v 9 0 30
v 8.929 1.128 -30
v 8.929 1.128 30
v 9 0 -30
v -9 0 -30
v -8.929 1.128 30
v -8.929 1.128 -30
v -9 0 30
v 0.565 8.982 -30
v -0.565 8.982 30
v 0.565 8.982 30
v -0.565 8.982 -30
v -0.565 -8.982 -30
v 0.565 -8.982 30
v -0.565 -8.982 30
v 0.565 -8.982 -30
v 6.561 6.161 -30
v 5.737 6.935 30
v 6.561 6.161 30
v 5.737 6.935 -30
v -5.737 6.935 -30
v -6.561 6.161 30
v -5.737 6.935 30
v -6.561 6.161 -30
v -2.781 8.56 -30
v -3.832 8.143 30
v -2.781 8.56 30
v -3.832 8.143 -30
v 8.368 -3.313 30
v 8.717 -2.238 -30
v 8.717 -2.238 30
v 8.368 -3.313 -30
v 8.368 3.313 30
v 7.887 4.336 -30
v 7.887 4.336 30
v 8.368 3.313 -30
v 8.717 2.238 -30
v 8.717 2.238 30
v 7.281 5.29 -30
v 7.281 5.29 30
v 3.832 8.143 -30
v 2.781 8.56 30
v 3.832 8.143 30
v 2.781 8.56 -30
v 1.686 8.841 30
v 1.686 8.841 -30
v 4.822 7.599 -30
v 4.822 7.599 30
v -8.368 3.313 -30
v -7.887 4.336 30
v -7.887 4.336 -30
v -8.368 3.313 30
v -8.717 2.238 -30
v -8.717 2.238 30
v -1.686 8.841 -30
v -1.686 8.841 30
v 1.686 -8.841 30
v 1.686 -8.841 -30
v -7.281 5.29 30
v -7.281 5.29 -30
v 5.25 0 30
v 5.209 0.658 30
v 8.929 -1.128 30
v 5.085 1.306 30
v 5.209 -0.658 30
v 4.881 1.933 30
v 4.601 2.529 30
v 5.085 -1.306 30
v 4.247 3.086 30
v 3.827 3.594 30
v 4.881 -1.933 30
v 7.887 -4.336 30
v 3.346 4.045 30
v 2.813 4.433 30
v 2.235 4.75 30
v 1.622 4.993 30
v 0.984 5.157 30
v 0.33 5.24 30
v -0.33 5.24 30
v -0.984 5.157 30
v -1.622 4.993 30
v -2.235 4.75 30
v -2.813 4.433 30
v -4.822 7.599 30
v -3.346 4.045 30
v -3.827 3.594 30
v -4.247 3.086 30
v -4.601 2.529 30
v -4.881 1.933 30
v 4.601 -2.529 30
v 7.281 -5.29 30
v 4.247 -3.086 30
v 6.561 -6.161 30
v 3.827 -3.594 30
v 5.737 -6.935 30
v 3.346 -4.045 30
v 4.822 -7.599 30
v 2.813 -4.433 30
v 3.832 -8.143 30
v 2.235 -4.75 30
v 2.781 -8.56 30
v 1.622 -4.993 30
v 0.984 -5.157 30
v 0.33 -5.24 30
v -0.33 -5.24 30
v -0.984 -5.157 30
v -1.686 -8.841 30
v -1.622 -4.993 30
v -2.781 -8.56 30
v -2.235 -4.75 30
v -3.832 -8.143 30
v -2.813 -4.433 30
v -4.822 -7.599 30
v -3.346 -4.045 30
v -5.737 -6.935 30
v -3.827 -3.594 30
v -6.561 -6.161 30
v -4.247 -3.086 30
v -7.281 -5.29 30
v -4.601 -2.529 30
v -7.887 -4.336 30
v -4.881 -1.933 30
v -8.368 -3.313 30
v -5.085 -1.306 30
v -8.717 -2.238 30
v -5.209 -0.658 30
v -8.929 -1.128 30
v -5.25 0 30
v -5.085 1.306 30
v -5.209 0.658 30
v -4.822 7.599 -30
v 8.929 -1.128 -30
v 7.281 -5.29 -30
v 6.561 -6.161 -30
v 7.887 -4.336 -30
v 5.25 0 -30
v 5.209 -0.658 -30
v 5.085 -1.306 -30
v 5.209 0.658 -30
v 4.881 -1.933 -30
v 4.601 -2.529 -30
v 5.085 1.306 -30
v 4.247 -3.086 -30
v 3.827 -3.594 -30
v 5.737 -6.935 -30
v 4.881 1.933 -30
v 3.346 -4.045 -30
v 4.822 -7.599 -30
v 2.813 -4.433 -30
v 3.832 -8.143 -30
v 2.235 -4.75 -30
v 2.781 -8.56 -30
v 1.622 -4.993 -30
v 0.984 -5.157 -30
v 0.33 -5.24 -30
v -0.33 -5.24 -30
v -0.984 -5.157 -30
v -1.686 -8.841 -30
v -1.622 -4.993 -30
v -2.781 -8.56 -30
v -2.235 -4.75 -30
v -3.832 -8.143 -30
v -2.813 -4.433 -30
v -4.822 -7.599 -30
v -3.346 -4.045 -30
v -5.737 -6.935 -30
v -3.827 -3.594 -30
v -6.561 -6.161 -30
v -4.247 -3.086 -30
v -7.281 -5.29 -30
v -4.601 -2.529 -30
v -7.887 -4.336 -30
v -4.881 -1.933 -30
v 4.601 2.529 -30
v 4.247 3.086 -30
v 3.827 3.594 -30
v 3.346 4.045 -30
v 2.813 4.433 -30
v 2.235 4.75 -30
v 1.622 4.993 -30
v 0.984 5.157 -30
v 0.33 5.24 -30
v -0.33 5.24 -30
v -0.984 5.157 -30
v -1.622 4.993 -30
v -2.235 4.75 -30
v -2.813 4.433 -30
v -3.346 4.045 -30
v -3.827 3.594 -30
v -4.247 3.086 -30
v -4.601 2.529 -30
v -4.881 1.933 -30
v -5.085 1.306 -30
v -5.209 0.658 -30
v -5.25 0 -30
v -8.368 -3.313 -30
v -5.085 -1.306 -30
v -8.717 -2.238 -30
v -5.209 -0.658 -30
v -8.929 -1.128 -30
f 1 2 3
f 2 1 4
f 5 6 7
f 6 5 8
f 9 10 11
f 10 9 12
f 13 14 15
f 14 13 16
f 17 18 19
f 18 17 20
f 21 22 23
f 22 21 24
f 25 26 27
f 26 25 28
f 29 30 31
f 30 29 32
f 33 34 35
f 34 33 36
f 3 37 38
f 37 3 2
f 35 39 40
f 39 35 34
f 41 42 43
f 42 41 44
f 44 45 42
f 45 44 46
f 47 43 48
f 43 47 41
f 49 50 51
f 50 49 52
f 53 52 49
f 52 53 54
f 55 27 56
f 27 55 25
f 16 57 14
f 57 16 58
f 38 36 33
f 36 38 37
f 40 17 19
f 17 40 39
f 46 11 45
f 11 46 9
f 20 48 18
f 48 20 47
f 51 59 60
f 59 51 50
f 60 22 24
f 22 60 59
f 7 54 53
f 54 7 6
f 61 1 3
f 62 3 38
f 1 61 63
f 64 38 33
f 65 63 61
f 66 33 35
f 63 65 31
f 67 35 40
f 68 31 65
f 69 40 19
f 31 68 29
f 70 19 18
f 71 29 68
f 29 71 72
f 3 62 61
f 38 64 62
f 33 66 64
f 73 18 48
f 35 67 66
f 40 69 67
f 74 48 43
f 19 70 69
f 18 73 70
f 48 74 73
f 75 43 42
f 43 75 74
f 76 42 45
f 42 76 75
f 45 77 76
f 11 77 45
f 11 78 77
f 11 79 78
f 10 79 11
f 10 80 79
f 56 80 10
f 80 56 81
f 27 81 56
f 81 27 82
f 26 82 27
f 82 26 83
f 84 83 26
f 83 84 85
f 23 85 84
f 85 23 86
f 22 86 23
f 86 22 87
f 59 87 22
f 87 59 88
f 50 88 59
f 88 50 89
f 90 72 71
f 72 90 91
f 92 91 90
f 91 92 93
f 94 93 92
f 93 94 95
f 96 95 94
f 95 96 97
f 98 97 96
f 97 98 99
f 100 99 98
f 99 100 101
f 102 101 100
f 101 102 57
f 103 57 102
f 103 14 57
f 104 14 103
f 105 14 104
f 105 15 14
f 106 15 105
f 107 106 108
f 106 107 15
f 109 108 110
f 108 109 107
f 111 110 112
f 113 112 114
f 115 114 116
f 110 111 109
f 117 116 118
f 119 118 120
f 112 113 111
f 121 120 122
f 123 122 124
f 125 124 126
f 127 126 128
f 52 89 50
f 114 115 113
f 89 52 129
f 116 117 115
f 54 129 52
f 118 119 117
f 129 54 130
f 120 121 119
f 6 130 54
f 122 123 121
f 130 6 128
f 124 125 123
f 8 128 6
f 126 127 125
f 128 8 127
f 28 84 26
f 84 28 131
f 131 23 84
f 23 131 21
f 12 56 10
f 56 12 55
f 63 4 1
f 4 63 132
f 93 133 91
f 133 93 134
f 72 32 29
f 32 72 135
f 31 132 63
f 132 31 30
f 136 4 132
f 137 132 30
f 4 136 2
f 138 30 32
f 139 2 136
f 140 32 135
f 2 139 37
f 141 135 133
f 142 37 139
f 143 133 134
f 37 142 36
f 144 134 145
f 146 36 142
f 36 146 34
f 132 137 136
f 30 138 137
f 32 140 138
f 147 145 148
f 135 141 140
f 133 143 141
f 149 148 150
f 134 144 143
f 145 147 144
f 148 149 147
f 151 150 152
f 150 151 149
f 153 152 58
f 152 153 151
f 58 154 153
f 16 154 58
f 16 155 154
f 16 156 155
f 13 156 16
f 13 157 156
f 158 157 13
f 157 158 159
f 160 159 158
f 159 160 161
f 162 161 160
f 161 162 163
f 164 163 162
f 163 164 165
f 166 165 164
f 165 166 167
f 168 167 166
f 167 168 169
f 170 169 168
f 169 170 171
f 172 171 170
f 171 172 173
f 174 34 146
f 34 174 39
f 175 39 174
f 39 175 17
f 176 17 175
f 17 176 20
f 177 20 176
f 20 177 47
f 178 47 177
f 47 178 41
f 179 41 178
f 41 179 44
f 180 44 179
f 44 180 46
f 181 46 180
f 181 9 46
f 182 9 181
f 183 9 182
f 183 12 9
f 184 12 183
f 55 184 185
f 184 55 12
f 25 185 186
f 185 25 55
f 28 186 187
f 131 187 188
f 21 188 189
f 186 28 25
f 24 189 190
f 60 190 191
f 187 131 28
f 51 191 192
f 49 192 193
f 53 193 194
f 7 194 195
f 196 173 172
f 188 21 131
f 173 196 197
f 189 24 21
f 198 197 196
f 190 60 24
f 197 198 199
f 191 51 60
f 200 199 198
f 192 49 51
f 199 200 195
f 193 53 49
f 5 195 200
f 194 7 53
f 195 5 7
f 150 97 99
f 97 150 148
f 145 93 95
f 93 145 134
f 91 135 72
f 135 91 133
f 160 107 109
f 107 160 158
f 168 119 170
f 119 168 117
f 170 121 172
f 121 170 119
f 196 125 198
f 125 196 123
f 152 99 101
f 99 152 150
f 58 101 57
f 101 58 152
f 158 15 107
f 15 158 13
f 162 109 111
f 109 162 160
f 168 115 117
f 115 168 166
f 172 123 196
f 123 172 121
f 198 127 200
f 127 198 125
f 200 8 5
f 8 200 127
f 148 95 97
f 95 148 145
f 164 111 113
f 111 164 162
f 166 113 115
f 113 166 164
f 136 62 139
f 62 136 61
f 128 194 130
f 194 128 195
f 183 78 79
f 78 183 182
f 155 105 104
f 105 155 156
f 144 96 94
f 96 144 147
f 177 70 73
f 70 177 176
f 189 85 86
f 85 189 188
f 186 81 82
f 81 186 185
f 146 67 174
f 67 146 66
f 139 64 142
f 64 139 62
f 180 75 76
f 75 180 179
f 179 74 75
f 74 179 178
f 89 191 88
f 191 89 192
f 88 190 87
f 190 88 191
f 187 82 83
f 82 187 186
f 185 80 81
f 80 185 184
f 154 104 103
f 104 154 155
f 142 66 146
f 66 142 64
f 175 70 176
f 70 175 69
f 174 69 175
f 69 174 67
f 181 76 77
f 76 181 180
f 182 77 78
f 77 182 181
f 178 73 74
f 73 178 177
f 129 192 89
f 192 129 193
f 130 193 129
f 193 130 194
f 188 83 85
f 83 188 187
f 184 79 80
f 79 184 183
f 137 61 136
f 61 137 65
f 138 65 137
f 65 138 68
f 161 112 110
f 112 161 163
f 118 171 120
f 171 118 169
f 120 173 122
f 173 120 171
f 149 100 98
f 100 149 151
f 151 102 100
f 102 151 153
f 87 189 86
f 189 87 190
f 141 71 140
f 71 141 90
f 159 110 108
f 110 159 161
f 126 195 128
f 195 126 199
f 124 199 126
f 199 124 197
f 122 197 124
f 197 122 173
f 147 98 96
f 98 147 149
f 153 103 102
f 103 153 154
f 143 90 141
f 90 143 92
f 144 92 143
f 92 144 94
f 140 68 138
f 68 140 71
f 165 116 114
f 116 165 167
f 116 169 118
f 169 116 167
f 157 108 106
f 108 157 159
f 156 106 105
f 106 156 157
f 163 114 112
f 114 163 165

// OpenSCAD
$fn = 50;


difference() {
	union() {
		translate(v = [0, 0, -30.0000000000]) {
			cylinder(h = 60, r = 9.0000000000);
		}
	}
	union() {
		translate(v = [0, 0, -100.0000000000]) {
			cylinder(h = 200, r = 5.2500000000);
		}
	}
}
